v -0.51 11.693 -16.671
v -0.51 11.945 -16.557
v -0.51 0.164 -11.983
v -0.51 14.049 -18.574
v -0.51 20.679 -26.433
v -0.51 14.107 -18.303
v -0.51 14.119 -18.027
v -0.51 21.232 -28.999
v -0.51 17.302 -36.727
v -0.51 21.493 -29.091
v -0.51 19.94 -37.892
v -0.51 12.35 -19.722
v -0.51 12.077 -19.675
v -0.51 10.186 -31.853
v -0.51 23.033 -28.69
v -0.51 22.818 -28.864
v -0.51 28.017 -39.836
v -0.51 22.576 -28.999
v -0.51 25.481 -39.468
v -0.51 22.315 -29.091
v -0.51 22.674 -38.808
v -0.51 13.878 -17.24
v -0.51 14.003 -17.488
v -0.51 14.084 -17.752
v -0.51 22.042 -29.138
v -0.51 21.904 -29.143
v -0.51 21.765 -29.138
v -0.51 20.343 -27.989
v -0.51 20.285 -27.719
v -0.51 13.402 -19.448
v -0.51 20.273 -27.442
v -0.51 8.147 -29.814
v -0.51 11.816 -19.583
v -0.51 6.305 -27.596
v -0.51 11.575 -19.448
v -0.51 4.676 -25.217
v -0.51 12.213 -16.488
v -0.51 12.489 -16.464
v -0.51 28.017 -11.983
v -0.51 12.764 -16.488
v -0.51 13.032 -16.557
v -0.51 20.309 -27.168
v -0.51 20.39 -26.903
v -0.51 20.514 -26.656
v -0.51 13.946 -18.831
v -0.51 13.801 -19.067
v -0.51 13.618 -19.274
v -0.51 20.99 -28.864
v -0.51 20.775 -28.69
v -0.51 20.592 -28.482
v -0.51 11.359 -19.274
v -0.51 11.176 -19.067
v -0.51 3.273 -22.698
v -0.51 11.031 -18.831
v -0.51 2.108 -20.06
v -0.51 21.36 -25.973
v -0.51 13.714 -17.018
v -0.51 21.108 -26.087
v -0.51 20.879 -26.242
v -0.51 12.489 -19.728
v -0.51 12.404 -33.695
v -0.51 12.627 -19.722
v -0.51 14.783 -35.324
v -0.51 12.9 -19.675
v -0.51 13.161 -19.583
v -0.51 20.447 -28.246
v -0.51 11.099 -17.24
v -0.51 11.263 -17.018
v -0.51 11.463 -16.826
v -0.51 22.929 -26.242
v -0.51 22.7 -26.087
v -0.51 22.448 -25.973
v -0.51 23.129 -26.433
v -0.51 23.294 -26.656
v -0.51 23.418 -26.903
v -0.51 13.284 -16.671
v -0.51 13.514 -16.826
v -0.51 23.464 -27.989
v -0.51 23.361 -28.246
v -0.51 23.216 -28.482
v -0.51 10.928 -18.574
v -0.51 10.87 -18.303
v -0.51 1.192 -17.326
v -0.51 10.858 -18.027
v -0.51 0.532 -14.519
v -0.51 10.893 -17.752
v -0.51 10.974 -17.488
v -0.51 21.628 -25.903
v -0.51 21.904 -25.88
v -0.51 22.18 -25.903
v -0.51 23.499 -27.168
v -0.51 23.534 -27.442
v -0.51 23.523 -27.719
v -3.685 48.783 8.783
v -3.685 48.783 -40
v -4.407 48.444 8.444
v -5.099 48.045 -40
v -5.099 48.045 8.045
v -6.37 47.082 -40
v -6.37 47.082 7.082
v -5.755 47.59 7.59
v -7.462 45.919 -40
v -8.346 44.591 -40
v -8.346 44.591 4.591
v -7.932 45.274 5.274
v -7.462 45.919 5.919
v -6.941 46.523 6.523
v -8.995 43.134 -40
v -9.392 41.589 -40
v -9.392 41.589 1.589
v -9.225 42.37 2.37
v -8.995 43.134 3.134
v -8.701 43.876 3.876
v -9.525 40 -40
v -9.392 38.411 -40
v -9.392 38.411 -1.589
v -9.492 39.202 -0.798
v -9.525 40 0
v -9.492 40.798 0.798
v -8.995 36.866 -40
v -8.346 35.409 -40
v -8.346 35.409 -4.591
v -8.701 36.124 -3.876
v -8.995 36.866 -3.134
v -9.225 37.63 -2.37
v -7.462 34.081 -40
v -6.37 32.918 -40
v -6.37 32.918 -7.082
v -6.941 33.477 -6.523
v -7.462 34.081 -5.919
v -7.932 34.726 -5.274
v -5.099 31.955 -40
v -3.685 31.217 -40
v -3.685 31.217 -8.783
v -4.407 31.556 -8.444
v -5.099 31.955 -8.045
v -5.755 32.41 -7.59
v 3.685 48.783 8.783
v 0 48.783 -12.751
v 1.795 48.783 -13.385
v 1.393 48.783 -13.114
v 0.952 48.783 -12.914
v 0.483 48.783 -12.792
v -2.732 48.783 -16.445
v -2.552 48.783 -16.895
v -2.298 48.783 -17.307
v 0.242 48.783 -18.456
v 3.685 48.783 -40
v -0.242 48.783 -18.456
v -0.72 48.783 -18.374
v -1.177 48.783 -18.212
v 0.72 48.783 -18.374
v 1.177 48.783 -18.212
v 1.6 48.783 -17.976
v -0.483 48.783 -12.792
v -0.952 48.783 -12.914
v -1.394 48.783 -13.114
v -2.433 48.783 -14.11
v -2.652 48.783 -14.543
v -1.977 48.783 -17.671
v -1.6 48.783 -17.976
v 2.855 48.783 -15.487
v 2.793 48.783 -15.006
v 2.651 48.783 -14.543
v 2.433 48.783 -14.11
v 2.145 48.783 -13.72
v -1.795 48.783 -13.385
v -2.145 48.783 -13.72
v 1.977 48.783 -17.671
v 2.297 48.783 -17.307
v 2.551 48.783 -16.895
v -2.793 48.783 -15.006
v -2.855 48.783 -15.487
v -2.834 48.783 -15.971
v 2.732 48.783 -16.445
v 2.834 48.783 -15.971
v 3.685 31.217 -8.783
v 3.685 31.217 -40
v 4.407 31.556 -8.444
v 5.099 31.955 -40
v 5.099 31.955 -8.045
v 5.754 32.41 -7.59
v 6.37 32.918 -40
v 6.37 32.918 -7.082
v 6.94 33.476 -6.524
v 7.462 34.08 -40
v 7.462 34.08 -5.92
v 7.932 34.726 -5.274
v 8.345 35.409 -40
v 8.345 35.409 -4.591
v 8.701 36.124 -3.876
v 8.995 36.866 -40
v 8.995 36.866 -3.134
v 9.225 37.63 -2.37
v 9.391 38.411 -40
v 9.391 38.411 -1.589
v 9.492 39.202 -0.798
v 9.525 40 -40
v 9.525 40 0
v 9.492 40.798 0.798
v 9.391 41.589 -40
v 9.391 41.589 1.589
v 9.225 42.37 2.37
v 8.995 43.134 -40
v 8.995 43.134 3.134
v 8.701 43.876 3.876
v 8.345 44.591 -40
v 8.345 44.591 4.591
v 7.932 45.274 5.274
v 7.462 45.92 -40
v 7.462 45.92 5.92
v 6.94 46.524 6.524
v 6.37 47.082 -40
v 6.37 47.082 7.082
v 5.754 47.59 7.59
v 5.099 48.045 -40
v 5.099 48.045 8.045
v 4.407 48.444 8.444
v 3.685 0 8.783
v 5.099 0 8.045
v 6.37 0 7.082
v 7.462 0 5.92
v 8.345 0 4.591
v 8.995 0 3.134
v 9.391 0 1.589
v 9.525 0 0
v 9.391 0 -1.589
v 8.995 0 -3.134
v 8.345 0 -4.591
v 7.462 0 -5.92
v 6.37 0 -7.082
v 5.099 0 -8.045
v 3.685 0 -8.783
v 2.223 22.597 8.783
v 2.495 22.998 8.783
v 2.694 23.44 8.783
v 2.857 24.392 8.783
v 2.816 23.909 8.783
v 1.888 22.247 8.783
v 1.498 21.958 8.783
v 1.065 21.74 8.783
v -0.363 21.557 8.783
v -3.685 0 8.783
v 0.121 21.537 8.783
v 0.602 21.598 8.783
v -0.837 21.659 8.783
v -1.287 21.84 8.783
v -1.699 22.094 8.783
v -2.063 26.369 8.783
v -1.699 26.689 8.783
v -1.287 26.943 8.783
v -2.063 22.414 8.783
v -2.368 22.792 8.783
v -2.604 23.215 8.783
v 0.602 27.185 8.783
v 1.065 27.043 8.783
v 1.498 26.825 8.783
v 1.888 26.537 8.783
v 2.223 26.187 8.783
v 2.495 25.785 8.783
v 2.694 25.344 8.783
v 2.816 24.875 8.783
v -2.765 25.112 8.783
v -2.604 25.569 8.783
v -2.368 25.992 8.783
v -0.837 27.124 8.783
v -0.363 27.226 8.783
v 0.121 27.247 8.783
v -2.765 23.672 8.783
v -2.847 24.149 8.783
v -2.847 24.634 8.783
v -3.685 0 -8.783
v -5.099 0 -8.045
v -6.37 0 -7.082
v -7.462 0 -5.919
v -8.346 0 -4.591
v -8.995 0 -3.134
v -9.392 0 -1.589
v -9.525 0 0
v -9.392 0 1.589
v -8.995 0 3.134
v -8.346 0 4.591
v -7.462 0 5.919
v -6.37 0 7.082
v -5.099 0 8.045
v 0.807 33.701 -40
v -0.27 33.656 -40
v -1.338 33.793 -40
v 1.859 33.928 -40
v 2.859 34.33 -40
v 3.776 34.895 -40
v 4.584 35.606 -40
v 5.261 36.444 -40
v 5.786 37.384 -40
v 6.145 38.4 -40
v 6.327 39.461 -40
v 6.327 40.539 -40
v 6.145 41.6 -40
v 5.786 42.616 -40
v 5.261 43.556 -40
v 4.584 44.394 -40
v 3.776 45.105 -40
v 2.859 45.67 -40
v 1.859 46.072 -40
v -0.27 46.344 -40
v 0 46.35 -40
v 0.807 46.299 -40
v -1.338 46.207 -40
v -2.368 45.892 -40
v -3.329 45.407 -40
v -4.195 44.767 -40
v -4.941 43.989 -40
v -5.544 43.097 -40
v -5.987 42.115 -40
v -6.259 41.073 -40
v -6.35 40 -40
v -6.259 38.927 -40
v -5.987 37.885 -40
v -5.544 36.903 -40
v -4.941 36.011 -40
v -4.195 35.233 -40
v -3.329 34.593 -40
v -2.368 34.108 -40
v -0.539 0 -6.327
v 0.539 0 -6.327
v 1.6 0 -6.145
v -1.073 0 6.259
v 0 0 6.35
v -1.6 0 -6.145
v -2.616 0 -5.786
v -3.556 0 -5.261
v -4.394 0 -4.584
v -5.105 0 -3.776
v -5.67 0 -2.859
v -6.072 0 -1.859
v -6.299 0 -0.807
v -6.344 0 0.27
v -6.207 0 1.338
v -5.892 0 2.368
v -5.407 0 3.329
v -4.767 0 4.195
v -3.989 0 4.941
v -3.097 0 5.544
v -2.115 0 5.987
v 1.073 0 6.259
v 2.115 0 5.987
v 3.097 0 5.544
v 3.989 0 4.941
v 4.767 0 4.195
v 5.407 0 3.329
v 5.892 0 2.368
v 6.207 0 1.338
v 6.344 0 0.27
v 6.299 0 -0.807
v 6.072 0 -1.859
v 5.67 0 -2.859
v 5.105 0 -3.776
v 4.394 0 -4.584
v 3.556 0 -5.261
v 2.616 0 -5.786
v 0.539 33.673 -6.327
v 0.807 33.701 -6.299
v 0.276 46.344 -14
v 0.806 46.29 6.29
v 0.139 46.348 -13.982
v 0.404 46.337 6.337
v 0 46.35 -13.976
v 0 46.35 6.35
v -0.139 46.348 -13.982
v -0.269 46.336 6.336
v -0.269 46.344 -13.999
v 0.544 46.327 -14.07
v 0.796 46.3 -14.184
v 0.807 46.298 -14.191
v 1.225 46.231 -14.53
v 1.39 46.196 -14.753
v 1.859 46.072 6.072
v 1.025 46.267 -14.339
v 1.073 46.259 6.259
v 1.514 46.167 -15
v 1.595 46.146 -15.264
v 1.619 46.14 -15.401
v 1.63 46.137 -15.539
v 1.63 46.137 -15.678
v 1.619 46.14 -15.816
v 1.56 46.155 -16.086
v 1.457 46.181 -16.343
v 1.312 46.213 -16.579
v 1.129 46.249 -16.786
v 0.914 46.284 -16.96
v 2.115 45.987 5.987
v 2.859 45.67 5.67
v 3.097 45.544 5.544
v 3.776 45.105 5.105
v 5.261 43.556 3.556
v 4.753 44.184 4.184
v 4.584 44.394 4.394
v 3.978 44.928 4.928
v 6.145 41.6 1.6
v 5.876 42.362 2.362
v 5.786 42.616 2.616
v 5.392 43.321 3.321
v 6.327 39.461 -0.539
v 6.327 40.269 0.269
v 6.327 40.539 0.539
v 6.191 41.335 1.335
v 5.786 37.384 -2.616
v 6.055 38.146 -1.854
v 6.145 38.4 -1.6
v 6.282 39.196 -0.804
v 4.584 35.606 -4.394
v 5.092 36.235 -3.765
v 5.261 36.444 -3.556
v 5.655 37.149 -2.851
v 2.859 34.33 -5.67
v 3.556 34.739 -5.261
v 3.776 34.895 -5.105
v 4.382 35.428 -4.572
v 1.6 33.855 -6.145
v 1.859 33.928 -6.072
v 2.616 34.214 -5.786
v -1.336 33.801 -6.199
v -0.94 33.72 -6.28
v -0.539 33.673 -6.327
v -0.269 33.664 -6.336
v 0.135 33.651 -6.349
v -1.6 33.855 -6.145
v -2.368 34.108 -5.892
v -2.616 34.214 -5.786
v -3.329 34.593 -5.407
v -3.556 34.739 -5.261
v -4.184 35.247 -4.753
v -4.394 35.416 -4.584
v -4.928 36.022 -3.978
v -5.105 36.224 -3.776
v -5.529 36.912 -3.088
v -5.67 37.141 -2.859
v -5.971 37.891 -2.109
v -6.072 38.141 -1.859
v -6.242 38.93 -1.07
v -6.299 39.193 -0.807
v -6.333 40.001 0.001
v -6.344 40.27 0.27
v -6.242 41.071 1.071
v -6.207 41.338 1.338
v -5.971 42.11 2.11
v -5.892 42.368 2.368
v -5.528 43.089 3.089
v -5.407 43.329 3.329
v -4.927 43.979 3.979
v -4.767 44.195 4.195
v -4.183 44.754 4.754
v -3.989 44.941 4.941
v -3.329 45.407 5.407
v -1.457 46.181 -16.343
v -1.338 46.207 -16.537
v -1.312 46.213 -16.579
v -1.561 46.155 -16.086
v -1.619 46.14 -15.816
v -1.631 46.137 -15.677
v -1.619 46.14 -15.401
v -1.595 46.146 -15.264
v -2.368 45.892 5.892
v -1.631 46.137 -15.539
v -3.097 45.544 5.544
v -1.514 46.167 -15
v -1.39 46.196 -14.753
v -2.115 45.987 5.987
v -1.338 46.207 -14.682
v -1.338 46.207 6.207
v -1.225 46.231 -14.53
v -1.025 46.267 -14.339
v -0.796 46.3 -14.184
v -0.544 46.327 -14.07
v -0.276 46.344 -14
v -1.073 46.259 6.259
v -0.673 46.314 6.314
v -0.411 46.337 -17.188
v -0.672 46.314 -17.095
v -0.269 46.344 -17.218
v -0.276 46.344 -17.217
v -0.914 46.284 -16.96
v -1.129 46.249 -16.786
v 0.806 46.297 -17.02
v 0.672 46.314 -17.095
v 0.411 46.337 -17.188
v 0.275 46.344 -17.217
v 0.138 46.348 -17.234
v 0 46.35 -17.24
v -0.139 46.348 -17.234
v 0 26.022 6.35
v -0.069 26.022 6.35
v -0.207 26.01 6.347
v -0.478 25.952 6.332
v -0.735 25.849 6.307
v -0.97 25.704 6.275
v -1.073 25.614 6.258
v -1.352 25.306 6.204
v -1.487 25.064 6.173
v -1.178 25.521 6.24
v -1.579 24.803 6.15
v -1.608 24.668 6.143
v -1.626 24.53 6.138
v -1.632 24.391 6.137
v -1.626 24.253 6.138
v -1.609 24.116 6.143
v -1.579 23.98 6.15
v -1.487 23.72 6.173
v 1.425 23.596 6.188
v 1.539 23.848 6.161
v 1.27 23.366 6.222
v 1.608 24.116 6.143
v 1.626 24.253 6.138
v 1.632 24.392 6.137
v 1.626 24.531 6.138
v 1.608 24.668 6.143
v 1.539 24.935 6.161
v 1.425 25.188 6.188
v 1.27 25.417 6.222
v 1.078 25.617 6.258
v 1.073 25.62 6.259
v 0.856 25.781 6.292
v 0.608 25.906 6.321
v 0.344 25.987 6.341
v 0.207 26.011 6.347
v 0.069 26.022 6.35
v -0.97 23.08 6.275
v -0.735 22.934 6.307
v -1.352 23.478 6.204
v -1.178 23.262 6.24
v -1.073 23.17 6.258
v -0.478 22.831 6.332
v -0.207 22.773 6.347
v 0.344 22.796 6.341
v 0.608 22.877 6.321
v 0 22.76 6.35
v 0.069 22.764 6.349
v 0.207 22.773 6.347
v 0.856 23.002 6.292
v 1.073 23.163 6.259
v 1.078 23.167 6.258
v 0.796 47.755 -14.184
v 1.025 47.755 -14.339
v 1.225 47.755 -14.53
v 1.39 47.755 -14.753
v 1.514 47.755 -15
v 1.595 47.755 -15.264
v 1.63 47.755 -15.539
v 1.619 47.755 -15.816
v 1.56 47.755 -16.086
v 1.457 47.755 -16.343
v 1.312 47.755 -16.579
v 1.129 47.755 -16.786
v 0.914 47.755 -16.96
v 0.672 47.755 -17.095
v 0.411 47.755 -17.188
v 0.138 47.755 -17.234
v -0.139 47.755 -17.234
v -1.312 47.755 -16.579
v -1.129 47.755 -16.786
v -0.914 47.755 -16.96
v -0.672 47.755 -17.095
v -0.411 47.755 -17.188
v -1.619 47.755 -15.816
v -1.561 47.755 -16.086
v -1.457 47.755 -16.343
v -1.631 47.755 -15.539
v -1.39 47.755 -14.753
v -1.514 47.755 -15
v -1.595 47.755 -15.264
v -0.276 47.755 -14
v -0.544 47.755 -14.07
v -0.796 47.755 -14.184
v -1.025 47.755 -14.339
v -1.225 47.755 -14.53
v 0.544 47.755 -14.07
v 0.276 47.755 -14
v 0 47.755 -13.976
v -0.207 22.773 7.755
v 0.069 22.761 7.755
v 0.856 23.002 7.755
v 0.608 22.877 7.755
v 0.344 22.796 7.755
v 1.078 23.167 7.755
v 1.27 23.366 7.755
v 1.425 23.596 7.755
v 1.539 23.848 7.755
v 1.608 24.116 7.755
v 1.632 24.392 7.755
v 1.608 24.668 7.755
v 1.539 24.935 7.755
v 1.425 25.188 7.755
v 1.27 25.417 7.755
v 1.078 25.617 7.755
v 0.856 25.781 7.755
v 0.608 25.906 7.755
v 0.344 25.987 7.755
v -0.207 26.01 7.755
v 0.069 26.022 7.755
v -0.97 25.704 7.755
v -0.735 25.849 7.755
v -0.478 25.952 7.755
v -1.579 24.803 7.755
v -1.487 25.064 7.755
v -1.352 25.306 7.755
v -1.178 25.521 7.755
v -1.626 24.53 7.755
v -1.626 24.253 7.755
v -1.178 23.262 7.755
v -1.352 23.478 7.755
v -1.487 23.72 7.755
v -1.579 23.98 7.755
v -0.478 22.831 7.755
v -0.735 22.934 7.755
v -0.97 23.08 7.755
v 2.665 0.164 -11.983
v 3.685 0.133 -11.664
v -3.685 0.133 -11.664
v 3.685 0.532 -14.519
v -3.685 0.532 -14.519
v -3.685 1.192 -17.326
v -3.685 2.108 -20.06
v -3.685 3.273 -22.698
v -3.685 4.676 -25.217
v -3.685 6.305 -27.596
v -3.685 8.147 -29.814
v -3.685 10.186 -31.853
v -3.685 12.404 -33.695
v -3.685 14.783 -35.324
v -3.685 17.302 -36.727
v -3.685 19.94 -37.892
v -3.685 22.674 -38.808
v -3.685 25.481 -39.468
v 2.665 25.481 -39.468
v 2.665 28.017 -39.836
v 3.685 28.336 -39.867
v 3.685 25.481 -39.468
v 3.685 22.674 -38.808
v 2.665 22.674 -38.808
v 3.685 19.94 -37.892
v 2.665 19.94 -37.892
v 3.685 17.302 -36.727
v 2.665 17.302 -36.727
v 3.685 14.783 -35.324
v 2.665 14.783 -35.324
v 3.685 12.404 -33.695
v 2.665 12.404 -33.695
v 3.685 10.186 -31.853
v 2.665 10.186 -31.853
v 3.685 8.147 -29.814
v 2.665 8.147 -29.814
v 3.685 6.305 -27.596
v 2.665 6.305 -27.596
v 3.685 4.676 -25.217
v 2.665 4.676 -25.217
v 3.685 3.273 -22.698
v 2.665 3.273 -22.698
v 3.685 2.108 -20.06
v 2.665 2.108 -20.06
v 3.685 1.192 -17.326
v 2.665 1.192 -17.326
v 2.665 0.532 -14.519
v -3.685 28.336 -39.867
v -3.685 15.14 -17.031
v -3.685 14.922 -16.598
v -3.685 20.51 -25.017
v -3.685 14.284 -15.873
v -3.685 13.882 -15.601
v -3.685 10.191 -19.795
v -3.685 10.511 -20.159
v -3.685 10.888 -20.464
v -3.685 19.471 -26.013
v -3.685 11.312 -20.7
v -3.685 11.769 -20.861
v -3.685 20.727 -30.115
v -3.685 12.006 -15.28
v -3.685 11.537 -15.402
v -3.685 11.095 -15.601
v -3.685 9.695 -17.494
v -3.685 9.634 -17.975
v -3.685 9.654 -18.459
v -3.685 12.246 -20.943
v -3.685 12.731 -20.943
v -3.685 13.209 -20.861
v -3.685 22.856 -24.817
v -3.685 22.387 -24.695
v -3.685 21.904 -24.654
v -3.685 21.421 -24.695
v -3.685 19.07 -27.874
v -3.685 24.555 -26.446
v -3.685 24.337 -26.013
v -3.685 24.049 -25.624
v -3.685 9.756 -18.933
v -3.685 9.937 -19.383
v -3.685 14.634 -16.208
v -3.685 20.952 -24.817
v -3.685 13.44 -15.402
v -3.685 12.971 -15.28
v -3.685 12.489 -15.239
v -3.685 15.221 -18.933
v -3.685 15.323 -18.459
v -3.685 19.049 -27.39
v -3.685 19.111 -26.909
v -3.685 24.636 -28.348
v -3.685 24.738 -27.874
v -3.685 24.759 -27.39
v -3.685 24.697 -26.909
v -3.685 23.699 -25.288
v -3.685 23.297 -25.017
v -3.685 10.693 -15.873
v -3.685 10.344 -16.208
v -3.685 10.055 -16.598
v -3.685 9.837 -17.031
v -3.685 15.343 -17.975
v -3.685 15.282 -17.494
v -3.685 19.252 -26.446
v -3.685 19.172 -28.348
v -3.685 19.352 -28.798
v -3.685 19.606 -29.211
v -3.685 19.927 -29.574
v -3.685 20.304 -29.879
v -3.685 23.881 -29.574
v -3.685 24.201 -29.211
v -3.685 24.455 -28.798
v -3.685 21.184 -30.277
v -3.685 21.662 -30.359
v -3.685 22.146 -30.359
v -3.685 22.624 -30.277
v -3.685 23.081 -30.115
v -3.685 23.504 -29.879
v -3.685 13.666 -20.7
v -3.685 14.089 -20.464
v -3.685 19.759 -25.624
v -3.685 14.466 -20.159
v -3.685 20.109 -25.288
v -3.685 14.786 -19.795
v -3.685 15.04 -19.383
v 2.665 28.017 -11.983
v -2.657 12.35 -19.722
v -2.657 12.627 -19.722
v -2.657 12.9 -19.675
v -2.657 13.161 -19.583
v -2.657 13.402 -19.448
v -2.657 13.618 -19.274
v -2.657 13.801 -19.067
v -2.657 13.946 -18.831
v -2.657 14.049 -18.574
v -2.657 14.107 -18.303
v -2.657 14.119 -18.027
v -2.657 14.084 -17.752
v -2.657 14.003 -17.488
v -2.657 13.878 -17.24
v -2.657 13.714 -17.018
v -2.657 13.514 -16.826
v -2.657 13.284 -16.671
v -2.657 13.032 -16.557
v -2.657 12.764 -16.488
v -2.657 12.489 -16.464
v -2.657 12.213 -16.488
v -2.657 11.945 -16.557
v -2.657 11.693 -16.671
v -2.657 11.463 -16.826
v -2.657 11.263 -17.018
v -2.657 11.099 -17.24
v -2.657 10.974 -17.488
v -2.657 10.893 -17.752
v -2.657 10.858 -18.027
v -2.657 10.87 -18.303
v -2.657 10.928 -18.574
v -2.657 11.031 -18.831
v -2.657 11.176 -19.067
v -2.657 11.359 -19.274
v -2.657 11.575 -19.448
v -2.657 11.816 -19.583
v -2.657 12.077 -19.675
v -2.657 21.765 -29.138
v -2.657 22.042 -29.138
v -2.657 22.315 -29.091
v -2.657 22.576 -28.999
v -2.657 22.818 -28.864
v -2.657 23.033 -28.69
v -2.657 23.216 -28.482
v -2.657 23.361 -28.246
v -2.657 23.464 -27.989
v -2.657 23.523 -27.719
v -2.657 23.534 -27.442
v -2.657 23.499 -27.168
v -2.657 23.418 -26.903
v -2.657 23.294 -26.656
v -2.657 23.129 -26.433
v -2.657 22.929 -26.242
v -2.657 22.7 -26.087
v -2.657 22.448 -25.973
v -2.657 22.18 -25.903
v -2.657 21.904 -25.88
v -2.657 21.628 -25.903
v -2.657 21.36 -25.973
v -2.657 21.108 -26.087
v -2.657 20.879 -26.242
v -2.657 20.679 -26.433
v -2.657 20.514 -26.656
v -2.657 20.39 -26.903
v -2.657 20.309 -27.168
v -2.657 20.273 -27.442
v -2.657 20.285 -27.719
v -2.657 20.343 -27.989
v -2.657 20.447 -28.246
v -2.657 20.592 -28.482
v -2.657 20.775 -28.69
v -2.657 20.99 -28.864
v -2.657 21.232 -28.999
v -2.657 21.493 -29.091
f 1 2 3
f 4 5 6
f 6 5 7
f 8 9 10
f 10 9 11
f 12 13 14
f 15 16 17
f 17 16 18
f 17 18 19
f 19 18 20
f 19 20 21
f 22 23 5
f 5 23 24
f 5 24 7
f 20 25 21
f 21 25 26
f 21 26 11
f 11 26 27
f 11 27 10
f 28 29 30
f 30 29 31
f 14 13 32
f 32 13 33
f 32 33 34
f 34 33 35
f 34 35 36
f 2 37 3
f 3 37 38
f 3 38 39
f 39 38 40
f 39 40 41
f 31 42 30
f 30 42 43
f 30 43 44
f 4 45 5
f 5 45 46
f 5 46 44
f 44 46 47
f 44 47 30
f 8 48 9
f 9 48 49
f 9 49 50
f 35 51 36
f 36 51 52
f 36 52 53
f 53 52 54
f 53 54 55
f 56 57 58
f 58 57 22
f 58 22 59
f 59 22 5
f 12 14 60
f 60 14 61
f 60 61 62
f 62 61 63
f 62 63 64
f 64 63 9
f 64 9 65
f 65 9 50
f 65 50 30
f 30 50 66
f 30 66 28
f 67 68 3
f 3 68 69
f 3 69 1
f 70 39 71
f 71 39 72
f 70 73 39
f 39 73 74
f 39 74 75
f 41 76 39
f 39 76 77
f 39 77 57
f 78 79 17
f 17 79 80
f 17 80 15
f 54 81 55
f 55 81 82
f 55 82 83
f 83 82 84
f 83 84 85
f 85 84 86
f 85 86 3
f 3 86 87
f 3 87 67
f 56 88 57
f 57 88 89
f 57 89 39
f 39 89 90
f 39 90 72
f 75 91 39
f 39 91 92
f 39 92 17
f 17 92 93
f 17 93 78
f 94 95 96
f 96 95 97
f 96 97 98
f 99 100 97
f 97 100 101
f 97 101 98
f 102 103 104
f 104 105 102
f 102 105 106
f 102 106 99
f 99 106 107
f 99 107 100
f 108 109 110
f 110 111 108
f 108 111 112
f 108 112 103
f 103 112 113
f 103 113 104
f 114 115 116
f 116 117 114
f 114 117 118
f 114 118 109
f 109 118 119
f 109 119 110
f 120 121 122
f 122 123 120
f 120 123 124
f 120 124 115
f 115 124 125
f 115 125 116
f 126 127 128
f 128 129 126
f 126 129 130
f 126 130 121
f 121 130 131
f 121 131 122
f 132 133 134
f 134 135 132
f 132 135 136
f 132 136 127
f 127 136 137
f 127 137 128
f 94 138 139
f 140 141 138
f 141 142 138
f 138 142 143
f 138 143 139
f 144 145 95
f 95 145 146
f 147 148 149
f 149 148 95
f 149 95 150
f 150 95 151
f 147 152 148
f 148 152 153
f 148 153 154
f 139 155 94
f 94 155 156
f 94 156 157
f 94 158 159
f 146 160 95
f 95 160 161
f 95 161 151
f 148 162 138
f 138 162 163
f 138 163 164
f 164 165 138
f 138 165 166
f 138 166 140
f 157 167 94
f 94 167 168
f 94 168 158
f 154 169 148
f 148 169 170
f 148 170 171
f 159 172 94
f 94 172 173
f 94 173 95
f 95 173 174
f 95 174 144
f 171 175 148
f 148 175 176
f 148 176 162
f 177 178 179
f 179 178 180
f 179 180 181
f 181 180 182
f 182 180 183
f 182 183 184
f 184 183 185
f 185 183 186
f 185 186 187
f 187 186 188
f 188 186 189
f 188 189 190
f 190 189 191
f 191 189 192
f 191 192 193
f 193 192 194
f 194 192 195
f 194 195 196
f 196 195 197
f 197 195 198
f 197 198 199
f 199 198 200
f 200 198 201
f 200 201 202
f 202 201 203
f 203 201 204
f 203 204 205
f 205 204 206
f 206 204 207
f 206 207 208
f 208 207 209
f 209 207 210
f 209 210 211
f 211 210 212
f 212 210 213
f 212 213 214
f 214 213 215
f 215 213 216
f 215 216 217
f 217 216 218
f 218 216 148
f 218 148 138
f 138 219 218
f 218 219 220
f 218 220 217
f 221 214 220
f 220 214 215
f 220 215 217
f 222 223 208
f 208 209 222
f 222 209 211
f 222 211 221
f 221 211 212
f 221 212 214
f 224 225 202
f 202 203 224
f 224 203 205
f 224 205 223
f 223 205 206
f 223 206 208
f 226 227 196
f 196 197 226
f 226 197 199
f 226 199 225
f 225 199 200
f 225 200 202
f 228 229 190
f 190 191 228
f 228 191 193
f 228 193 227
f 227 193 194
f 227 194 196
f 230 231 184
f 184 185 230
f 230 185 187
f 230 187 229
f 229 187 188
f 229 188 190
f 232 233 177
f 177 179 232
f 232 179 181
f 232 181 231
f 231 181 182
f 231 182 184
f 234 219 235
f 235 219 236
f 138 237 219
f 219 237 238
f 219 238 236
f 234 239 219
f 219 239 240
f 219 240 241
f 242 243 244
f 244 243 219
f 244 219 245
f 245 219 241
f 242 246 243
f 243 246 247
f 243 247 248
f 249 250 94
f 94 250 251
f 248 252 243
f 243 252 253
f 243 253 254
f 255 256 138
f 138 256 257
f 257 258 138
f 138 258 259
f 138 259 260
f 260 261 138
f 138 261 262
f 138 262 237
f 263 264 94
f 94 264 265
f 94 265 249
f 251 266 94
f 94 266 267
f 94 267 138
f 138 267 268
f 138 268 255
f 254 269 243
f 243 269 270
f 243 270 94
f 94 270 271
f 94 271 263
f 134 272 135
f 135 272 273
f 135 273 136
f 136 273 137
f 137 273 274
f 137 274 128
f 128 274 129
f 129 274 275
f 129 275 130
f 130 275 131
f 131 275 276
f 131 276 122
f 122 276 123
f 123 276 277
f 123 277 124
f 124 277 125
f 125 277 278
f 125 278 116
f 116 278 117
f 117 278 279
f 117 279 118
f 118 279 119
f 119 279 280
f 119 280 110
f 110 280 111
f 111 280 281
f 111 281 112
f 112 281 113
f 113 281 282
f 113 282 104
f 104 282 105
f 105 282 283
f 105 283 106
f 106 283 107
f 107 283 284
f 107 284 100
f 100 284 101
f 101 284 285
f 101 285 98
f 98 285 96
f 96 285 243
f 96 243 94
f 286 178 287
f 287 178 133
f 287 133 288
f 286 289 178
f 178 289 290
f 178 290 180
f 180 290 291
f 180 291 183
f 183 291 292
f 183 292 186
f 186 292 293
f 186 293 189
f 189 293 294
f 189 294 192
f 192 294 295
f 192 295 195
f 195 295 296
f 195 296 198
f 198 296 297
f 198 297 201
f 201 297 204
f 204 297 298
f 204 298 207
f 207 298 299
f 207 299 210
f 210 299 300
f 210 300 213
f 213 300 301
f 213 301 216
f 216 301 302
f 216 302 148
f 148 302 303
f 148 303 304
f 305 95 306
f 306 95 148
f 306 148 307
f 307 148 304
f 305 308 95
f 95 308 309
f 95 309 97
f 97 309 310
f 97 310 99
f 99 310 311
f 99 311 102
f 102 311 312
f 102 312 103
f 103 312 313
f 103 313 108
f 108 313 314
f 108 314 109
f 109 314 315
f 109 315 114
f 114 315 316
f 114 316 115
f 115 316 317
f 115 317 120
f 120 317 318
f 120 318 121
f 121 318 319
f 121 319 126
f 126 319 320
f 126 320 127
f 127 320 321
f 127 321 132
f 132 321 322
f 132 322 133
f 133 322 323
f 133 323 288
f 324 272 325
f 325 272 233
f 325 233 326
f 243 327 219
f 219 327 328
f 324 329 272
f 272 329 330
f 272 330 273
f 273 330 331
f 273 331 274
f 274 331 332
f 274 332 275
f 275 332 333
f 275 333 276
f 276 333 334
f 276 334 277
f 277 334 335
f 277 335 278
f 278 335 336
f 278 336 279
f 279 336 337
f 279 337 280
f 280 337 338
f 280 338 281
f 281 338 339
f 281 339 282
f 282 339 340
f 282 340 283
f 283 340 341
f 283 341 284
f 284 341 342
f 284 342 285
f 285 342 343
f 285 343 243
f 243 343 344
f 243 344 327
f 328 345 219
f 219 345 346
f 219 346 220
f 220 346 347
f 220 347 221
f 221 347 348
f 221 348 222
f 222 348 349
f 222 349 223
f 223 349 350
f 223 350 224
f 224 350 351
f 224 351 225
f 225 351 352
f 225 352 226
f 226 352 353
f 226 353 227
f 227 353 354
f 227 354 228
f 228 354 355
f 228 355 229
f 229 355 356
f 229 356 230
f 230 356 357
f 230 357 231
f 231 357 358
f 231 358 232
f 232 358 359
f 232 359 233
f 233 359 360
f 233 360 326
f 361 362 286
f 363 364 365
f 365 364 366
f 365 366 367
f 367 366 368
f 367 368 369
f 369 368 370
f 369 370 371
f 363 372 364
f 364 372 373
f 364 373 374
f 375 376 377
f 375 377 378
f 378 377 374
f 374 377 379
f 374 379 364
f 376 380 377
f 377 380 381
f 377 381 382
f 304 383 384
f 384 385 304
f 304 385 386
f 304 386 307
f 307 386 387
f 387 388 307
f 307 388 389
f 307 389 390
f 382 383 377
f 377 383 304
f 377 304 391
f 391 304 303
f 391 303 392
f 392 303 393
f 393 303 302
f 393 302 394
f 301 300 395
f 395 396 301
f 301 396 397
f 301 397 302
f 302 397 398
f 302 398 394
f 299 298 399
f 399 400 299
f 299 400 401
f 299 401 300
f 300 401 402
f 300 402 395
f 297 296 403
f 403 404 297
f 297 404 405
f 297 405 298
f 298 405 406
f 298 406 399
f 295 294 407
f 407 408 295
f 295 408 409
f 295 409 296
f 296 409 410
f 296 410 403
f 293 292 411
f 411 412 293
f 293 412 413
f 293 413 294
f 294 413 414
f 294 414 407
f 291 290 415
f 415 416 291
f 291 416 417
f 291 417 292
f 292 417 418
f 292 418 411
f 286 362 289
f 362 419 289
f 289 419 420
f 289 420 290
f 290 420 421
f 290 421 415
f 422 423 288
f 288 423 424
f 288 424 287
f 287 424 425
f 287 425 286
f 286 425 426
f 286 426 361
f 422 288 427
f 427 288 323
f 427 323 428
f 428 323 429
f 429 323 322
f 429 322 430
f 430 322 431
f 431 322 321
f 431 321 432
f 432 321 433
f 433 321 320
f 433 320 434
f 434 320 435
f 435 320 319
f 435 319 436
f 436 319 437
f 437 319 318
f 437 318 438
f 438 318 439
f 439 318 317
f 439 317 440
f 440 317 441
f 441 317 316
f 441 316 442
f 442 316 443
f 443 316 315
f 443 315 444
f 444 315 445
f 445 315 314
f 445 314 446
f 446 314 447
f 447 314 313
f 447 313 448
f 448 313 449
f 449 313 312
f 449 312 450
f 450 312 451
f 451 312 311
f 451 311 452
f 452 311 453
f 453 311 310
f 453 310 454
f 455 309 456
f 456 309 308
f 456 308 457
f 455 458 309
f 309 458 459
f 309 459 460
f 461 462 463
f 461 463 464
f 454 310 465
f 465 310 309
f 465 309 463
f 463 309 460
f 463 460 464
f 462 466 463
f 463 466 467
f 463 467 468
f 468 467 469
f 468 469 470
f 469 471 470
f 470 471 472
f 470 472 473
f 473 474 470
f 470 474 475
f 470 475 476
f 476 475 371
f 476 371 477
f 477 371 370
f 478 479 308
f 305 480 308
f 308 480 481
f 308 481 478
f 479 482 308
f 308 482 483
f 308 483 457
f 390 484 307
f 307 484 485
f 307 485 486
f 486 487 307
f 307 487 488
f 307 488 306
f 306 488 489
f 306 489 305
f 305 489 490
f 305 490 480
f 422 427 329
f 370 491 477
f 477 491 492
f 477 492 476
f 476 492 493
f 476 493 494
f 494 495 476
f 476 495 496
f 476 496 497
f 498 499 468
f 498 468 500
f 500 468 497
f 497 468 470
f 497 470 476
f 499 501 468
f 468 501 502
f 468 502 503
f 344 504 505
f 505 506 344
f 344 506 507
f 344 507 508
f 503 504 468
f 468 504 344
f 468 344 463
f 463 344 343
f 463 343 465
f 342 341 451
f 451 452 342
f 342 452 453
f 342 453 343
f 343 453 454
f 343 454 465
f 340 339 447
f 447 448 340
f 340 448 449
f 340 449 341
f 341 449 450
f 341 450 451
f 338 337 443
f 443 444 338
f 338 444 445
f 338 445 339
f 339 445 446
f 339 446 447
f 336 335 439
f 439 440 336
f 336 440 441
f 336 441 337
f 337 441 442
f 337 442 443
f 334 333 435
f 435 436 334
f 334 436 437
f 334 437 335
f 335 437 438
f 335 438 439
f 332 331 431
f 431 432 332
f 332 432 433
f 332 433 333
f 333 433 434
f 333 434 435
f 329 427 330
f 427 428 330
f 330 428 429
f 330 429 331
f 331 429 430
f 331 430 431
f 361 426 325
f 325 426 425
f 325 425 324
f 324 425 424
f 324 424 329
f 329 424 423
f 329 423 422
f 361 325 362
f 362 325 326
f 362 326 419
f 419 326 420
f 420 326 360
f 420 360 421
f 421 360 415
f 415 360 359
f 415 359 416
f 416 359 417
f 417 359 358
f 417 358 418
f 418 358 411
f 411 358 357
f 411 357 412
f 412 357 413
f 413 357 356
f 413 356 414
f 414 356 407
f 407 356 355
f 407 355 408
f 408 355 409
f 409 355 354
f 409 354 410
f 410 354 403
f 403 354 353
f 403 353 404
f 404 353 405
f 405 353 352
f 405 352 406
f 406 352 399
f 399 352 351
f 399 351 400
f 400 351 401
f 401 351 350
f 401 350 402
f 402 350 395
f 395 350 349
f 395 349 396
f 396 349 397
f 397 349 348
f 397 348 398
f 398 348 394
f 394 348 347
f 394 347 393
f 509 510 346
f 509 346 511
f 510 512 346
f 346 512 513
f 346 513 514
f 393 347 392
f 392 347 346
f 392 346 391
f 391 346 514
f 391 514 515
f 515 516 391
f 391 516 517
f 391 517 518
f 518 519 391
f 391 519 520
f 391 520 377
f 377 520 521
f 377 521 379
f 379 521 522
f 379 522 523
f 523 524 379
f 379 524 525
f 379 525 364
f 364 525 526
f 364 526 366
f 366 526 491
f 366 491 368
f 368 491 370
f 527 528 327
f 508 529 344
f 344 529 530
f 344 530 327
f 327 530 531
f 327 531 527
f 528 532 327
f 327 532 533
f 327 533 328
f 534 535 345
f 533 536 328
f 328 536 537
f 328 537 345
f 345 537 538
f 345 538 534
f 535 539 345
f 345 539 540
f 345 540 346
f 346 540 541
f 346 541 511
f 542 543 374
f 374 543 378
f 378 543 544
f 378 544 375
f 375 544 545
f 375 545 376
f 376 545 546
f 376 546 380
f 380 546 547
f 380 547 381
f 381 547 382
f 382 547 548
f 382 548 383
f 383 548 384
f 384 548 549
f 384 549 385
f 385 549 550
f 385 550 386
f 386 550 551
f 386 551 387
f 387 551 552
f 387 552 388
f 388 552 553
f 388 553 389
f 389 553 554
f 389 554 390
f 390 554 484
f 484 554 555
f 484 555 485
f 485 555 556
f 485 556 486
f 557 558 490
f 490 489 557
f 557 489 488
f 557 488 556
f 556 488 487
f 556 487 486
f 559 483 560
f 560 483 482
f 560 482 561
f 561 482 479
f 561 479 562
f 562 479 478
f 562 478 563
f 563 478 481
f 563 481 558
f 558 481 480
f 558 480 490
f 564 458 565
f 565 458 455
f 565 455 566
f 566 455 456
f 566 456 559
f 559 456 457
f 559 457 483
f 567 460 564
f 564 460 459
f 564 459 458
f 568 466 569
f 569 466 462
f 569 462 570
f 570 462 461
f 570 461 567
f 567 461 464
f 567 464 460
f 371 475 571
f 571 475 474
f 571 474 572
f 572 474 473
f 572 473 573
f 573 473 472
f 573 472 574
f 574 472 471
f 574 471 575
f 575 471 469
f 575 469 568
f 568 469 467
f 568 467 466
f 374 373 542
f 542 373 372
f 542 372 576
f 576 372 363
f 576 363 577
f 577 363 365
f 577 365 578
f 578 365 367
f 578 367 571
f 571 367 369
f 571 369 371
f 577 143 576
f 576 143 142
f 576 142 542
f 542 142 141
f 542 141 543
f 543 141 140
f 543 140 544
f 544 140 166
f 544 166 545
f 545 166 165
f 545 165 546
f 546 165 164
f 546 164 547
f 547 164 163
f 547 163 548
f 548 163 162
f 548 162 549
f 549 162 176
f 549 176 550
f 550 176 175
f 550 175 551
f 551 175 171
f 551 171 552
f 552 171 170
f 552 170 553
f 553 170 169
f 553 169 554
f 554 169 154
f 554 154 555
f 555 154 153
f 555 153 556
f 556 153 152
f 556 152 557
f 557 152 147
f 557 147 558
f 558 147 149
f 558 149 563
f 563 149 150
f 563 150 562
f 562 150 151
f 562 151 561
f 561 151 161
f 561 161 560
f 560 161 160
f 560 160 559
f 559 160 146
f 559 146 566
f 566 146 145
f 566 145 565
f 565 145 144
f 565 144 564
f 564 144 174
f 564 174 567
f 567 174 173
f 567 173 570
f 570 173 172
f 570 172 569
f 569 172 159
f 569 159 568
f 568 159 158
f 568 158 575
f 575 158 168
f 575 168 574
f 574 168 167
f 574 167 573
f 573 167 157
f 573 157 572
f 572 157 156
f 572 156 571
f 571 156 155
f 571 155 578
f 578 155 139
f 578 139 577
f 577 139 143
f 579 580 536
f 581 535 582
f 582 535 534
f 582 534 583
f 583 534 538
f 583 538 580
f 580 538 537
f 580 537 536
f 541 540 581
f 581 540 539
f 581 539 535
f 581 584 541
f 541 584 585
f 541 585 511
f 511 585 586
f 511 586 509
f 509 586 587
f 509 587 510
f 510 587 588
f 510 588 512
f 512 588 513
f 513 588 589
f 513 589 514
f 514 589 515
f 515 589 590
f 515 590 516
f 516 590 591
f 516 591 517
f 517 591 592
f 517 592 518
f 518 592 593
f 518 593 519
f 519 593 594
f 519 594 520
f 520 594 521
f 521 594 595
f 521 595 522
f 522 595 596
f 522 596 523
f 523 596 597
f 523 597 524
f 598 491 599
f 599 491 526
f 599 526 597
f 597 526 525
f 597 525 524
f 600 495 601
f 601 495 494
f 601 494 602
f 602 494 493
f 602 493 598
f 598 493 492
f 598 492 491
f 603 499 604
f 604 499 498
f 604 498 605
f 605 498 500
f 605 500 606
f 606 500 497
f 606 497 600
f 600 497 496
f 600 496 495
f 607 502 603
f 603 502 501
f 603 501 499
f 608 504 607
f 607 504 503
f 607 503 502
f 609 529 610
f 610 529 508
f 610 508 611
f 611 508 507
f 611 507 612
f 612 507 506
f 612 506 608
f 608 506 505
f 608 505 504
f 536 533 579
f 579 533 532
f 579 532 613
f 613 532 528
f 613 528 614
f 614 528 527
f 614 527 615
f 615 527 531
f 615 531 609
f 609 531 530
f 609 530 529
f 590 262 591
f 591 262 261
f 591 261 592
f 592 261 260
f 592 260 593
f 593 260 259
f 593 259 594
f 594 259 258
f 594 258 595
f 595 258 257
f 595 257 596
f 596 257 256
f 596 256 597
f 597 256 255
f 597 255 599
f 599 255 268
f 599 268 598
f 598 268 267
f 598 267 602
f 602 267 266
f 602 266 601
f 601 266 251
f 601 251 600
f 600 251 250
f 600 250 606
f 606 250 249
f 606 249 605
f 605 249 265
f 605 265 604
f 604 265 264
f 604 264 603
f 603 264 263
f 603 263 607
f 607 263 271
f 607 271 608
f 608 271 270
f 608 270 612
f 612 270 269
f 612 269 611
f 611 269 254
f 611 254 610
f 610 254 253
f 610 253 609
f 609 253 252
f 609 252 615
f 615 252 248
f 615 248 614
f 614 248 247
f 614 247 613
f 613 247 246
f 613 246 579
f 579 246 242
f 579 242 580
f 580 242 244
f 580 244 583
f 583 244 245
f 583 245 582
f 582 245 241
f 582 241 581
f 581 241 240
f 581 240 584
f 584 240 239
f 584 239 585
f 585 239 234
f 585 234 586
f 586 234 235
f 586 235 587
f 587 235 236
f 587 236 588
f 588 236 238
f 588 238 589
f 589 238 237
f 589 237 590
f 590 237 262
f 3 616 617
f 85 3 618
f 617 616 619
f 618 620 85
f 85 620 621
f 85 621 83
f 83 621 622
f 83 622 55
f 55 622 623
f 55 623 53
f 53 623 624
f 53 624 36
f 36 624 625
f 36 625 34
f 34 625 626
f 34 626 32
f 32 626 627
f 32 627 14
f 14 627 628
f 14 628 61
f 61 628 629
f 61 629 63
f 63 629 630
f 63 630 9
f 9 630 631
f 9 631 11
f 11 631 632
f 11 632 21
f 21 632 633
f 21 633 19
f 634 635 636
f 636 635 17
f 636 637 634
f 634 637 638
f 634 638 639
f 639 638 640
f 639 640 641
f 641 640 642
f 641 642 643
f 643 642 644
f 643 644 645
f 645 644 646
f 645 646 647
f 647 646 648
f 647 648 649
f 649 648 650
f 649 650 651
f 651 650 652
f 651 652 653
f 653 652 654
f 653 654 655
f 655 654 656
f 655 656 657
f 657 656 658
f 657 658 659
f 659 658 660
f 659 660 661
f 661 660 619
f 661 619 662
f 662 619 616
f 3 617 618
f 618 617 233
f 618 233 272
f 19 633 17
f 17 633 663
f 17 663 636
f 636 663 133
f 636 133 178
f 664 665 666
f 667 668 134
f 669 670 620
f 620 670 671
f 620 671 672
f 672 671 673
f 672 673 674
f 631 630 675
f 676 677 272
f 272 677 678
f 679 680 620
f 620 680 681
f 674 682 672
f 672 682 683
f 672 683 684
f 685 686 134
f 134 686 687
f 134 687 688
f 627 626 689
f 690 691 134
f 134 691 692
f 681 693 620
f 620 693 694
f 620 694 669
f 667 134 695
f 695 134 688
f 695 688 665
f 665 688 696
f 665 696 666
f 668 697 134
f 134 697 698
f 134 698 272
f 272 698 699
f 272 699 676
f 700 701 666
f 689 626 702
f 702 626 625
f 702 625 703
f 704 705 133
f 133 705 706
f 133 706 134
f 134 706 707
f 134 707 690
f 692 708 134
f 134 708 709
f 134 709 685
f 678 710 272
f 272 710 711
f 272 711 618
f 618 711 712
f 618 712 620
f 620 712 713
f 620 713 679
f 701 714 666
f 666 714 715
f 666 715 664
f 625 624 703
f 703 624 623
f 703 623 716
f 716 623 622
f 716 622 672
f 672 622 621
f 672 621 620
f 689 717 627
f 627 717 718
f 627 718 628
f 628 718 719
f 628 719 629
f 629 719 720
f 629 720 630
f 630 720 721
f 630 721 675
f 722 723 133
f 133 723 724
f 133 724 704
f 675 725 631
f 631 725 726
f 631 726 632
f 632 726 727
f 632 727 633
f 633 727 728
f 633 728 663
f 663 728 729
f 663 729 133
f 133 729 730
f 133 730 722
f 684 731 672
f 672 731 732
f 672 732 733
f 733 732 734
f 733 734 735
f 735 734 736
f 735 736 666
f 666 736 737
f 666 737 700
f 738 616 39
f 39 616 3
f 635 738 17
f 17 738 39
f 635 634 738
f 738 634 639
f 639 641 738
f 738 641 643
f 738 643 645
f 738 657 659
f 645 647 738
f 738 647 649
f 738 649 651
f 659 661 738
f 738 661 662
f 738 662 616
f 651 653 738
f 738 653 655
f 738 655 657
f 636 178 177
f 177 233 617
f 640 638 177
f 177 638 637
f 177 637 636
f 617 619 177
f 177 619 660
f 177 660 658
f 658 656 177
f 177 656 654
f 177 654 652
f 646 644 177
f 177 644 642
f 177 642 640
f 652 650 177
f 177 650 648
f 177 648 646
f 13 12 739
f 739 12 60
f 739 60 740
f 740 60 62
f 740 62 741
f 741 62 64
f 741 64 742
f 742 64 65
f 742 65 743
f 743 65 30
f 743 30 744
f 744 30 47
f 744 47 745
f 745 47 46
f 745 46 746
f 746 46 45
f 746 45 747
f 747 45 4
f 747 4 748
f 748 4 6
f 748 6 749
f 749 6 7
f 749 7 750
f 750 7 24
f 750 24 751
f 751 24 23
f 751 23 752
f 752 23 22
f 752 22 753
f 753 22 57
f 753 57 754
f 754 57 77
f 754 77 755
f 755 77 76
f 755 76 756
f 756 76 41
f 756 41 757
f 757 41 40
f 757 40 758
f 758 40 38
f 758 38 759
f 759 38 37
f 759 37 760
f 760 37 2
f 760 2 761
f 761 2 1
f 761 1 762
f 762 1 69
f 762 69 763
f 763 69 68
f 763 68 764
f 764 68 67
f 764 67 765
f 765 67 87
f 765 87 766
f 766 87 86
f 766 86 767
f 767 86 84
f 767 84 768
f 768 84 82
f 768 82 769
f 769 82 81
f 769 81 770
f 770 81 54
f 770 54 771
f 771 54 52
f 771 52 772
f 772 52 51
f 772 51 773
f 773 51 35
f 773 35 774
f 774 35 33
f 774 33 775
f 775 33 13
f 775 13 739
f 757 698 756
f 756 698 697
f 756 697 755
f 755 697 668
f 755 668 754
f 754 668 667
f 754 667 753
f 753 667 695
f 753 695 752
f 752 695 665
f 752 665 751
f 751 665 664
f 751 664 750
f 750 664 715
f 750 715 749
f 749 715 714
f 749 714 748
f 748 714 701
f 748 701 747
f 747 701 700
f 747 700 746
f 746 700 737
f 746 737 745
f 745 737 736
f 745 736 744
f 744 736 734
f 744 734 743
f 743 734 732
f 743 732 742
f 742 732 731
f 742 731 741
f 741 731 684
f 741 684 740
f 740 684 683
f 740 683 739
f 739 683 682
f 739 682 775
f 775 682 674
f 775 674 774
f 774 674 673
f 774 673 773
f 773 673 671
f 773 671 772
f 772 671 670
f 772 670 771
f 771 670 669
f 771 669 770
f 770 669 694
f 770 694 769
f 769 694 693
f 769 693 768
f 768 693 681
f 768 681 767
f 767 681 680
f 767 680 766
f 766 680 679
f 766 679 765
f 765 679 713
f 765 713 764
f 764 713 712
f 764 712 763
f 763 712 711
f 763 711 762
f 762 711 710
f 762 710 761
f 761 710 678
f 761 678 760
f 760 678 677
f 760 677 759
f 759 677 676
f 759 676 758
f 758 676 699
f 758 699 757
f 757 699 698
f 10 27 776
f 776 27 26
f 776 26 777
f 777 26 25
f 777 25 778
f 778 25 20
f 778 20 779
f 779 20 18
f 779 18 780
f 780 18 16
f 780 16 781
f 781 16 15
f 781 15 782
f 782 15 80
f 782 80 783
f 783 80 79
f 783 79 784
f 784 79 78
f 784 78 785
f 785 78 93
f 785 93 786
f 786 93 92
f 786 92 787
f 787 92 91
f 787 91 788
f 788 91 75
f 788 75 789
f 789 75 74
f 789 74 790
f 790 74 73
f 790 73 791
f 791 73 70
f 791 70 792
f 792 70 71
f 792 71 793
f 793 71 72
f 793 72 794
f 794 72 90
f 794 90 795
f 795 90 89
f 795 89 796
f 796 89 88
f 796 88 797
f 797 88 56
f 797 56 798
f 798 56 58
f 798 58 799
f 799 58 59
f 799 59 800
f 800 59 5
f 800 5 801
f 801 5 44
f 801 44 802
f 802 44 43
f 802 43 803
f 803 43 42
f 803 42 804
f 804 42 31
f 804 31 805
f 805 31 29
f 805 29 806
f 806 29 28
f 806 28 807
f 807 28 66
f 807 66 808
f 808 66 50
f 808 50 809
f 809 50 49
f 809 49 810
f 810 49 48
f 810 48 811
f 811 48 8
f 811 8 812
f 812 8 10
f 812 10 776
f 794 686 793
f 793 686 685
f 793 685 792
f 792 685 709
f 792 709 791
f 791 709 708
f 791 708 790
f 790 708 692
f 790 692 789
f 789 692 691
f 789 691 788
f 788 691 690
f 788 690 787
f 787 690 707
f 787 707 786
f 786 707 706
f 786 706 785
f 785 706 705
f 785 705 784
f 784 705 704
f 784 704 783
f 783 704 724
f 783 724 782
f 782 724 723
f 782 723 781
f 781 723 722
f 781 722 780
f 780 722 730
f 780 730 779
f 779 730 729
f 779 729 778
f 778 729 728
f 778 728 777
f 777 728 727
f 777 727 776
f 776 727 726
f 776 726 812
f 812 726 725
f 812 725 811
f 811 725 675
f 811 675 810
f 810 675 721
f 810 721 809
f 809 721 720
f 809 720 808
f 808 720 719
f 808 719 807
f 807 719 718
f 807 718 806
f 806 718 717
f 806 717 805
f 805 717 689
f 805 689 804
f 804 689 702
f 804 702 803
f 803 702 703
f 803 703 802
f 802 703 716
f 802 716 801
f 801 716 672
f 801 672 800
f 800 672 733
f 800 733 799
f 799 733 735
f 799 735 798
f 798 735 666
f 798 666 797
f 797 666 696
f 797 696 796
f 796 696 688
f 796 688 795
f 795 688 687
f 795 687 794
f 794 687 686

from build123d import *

# Parameters (mm, degrees)
SKETCH2_R                                       = 6.35
BOSS_EXTRUDE3_DEPTH                             = 3.175
BOSS_EXTRUDE4_DEPTH                             = 3.175
BOSS_EXTRUDE5_DEPTH                             = 1.019725
CSK_FOR_4_FLAT_HEAD_MACHINE_SCREW_4_D           = 3.2639
CSK_FOR_4_FLAT_HEAD_MACHINE_SCREW_4_DEPTH       = 3.175
CSK_FOR_4_FLAT_HEAD_MACHINE_SCREW_4_CSINK_D     = 5.715
CSK_FOR_4_FLAT_HEAD_MACHINE_SCREW_4_CSINK_ANGLE = 100


# Read off the part's stored shape, not the designer's step: CSK for #4 Flat Head Machine Screw (100)1
with BuildPart() as part:
    # Sweep1: sweep along a path in Sketch5
    with BuildLine(Plane(origin=(0, 0, 0), x_dir=(0, 0, -1), z_dir=(1, 0, 0))) as sweep1_path:
        Line((0, 0), (0, 40))
        Line((0, 40), (40, 40))
    # Sketch2 → Sweep1 (sweep)
    with BuildSketch(Plane(origin=(0, 0, 0), x_dir=(1, 0, 0), z_dir=(0, 1, 0))):
        with BuildLine():
            Line((-3.684990204, -8.783413773), (3.684734386, -8.783413773))
            ThreePointArc((3.684734386, -8.783413773), (9.525, 0), (3.684734386, 8.783413773))
            Line((3.684734386, 8.783413773), (-3.684990204, 8.783413773))
            ThreePointArc((-3.684990204, 8.783413773), (-9.525098966, 0), (-3.684990204, -8.783413773))
        make_face()
        Circle(SKETCH2_R, mode=Mode.SUBTRACT)
    sweep(path=sweep1_path.line, transition=Transition.RIGHT)

    # CSK for _4 Flat Head Machine Screw _ 2 → CSK for _4 Flat Head Machine Screw _100 (revolve, cut)
    with BuildSketch(Plane(origin=(-0.000127909, 0, -15.608293114), x_dir=(1, 0, 0), z_dir=(0, 0, 1))):
        Polygon((0, 46.136589997), (1.63195, 46.136589997), (1.63195, 47.75505522), (2.8575, 48.783413773), (0, 48.783413773), align=None)
    revolve(axis=Axis((-0.000127909, 0, -15.608293114), (0, 1, 0)), mode=Mode.SUBTRACT)

    # CSK for _4 Flat Head Machine Screw _ 3 o → CSK for _4 Flat Head Machine Screw _ 3 (revolve, cut)
    with BuildSketch(Plane(origin=(-6.3954e-05, 24.391706886, 0), x_dir=(1, 0, 0), z_dir=(0, -1, 0))):
        Polygon((0, 6.13660701), (1.63195, 6.13660701), (1.63195, 7.75505522), (2.8575, 8.783413773), (0, 8.783413773), align=None)
    revolve(axis=Axis((-6.3954e-05, 24.391706886, 0), (0, 0, 1)), mode=Mode.SUBTRACT)

    # Sketch13 → Boss-Extrude3 (add)
    with BuildSketch(Plane(origin=(-3.684990204, 0, 0), x_dir=(0, 0, -1), z_dir=(1, 0, 0))):
        with BuildLine():
            ThreePointArc((11.983413773, 0.164448528), (30.85687358, 9.14312642), (39.835551472, 28.016586227))
            Line((39.835551472, 28.016586227), (11.983413773, 28.016586227))
            Line((11.983413773, 28.016586227), (11.983413773, 0.164448528))
        make_face()
        with BuildLine():
            Line((40, 31.216586227), (8.783413773, 31.216586227))
            Line((8.783413773, 31.216586227), (8.783413773, 0))
            ThreePointArc((8.783413773, 0), (10.385525139, 0.04113924), (11.983413773, 0.164448528))
            Line((11.983413773, 0.164448528), (11.983413773, 28.016586227))
            Line((11.983413773, 28.016586227), (39.835551472, 28.016586227))
            ThreePointArc((39.835551472, 28.016586227), (39.95886076, 29.614474861), (40, 31.216586227))
        make_face()
    extrude(amount=BOSS_EXTRUDE3_DEPTH)

    # Sketch15 → Boss-Extrude4 (add)
    with BuildSketch(Plane(origin=(-0.509990204, 0, 0), x_dir=(0, 0, -1), z_dir=(1, 0, 0))):
        with BuildLine():
            Line((8.783413773, 31.216586227), (40, 31.216586227))
            ThreePointArc((40, 31.216586227), (39.95886076, 29.614474861), (39.835551472, 28.016586227))
            Line((39.835551472, 28.016586227), (11.983413773, 28.016586227))
            Line((11.983413773, 28.016586227), (11.983413773, 0.164448528))
            ThreePointArc((11.983413773, 0.164448528), (10.385525139, 0.04113924), (8.783413773, 0))
            Line((8.783413773, 0), (8.783413773, 31.216586227))
        make_face()
    extrude(amount=BOSS_EXTRUDE4_DEPTH)

    # Sketch16 → Boss-Extrude5 (add)
    with BuildSketch(Plane(origin=(2.665009796, 0, 0), x_dir=(0, 0, -1), z_dir=(1, 0, 0))):
        with BuildLine():
            Line((8.783413773, 31.216586227), (40, 31.216586227))
            ThreePointArc((40, 31.216586227), (30.85687358, 9.14312642), (8.783413773, 0))
            Line((8.783413773, 0), (8.783413773, 31.216586227))
        make_face()
    extrude(amount=BOSS_EXTRUDE5_DEPTH)

    # CSK for _4 Flat Head Machine Screw _ 4
    with Locations(Plane.ZY.offset(3.684990204)):
        with Locations((-27.511452395, 21.903897361), (-18.096102639, 12.488547605)):
            CounterSinkHole(CSK_FOR_4_FLAT_HEAD_MACHINE_SCREW_4_D / 2, CSK_FOR_4_FLAT_HEAD_MACHINE_SCREW_4_CSINK_D / 2, depth=CSK_FOR_4_FLAT_HEAD_MACHINE_SCREW_4_DEPTH, counter_sink_angle=CSK_FOR_4_FLAT_HEAD_MACHINE_SCREW_4_CSINK_ANGLE)


solid = part.part
